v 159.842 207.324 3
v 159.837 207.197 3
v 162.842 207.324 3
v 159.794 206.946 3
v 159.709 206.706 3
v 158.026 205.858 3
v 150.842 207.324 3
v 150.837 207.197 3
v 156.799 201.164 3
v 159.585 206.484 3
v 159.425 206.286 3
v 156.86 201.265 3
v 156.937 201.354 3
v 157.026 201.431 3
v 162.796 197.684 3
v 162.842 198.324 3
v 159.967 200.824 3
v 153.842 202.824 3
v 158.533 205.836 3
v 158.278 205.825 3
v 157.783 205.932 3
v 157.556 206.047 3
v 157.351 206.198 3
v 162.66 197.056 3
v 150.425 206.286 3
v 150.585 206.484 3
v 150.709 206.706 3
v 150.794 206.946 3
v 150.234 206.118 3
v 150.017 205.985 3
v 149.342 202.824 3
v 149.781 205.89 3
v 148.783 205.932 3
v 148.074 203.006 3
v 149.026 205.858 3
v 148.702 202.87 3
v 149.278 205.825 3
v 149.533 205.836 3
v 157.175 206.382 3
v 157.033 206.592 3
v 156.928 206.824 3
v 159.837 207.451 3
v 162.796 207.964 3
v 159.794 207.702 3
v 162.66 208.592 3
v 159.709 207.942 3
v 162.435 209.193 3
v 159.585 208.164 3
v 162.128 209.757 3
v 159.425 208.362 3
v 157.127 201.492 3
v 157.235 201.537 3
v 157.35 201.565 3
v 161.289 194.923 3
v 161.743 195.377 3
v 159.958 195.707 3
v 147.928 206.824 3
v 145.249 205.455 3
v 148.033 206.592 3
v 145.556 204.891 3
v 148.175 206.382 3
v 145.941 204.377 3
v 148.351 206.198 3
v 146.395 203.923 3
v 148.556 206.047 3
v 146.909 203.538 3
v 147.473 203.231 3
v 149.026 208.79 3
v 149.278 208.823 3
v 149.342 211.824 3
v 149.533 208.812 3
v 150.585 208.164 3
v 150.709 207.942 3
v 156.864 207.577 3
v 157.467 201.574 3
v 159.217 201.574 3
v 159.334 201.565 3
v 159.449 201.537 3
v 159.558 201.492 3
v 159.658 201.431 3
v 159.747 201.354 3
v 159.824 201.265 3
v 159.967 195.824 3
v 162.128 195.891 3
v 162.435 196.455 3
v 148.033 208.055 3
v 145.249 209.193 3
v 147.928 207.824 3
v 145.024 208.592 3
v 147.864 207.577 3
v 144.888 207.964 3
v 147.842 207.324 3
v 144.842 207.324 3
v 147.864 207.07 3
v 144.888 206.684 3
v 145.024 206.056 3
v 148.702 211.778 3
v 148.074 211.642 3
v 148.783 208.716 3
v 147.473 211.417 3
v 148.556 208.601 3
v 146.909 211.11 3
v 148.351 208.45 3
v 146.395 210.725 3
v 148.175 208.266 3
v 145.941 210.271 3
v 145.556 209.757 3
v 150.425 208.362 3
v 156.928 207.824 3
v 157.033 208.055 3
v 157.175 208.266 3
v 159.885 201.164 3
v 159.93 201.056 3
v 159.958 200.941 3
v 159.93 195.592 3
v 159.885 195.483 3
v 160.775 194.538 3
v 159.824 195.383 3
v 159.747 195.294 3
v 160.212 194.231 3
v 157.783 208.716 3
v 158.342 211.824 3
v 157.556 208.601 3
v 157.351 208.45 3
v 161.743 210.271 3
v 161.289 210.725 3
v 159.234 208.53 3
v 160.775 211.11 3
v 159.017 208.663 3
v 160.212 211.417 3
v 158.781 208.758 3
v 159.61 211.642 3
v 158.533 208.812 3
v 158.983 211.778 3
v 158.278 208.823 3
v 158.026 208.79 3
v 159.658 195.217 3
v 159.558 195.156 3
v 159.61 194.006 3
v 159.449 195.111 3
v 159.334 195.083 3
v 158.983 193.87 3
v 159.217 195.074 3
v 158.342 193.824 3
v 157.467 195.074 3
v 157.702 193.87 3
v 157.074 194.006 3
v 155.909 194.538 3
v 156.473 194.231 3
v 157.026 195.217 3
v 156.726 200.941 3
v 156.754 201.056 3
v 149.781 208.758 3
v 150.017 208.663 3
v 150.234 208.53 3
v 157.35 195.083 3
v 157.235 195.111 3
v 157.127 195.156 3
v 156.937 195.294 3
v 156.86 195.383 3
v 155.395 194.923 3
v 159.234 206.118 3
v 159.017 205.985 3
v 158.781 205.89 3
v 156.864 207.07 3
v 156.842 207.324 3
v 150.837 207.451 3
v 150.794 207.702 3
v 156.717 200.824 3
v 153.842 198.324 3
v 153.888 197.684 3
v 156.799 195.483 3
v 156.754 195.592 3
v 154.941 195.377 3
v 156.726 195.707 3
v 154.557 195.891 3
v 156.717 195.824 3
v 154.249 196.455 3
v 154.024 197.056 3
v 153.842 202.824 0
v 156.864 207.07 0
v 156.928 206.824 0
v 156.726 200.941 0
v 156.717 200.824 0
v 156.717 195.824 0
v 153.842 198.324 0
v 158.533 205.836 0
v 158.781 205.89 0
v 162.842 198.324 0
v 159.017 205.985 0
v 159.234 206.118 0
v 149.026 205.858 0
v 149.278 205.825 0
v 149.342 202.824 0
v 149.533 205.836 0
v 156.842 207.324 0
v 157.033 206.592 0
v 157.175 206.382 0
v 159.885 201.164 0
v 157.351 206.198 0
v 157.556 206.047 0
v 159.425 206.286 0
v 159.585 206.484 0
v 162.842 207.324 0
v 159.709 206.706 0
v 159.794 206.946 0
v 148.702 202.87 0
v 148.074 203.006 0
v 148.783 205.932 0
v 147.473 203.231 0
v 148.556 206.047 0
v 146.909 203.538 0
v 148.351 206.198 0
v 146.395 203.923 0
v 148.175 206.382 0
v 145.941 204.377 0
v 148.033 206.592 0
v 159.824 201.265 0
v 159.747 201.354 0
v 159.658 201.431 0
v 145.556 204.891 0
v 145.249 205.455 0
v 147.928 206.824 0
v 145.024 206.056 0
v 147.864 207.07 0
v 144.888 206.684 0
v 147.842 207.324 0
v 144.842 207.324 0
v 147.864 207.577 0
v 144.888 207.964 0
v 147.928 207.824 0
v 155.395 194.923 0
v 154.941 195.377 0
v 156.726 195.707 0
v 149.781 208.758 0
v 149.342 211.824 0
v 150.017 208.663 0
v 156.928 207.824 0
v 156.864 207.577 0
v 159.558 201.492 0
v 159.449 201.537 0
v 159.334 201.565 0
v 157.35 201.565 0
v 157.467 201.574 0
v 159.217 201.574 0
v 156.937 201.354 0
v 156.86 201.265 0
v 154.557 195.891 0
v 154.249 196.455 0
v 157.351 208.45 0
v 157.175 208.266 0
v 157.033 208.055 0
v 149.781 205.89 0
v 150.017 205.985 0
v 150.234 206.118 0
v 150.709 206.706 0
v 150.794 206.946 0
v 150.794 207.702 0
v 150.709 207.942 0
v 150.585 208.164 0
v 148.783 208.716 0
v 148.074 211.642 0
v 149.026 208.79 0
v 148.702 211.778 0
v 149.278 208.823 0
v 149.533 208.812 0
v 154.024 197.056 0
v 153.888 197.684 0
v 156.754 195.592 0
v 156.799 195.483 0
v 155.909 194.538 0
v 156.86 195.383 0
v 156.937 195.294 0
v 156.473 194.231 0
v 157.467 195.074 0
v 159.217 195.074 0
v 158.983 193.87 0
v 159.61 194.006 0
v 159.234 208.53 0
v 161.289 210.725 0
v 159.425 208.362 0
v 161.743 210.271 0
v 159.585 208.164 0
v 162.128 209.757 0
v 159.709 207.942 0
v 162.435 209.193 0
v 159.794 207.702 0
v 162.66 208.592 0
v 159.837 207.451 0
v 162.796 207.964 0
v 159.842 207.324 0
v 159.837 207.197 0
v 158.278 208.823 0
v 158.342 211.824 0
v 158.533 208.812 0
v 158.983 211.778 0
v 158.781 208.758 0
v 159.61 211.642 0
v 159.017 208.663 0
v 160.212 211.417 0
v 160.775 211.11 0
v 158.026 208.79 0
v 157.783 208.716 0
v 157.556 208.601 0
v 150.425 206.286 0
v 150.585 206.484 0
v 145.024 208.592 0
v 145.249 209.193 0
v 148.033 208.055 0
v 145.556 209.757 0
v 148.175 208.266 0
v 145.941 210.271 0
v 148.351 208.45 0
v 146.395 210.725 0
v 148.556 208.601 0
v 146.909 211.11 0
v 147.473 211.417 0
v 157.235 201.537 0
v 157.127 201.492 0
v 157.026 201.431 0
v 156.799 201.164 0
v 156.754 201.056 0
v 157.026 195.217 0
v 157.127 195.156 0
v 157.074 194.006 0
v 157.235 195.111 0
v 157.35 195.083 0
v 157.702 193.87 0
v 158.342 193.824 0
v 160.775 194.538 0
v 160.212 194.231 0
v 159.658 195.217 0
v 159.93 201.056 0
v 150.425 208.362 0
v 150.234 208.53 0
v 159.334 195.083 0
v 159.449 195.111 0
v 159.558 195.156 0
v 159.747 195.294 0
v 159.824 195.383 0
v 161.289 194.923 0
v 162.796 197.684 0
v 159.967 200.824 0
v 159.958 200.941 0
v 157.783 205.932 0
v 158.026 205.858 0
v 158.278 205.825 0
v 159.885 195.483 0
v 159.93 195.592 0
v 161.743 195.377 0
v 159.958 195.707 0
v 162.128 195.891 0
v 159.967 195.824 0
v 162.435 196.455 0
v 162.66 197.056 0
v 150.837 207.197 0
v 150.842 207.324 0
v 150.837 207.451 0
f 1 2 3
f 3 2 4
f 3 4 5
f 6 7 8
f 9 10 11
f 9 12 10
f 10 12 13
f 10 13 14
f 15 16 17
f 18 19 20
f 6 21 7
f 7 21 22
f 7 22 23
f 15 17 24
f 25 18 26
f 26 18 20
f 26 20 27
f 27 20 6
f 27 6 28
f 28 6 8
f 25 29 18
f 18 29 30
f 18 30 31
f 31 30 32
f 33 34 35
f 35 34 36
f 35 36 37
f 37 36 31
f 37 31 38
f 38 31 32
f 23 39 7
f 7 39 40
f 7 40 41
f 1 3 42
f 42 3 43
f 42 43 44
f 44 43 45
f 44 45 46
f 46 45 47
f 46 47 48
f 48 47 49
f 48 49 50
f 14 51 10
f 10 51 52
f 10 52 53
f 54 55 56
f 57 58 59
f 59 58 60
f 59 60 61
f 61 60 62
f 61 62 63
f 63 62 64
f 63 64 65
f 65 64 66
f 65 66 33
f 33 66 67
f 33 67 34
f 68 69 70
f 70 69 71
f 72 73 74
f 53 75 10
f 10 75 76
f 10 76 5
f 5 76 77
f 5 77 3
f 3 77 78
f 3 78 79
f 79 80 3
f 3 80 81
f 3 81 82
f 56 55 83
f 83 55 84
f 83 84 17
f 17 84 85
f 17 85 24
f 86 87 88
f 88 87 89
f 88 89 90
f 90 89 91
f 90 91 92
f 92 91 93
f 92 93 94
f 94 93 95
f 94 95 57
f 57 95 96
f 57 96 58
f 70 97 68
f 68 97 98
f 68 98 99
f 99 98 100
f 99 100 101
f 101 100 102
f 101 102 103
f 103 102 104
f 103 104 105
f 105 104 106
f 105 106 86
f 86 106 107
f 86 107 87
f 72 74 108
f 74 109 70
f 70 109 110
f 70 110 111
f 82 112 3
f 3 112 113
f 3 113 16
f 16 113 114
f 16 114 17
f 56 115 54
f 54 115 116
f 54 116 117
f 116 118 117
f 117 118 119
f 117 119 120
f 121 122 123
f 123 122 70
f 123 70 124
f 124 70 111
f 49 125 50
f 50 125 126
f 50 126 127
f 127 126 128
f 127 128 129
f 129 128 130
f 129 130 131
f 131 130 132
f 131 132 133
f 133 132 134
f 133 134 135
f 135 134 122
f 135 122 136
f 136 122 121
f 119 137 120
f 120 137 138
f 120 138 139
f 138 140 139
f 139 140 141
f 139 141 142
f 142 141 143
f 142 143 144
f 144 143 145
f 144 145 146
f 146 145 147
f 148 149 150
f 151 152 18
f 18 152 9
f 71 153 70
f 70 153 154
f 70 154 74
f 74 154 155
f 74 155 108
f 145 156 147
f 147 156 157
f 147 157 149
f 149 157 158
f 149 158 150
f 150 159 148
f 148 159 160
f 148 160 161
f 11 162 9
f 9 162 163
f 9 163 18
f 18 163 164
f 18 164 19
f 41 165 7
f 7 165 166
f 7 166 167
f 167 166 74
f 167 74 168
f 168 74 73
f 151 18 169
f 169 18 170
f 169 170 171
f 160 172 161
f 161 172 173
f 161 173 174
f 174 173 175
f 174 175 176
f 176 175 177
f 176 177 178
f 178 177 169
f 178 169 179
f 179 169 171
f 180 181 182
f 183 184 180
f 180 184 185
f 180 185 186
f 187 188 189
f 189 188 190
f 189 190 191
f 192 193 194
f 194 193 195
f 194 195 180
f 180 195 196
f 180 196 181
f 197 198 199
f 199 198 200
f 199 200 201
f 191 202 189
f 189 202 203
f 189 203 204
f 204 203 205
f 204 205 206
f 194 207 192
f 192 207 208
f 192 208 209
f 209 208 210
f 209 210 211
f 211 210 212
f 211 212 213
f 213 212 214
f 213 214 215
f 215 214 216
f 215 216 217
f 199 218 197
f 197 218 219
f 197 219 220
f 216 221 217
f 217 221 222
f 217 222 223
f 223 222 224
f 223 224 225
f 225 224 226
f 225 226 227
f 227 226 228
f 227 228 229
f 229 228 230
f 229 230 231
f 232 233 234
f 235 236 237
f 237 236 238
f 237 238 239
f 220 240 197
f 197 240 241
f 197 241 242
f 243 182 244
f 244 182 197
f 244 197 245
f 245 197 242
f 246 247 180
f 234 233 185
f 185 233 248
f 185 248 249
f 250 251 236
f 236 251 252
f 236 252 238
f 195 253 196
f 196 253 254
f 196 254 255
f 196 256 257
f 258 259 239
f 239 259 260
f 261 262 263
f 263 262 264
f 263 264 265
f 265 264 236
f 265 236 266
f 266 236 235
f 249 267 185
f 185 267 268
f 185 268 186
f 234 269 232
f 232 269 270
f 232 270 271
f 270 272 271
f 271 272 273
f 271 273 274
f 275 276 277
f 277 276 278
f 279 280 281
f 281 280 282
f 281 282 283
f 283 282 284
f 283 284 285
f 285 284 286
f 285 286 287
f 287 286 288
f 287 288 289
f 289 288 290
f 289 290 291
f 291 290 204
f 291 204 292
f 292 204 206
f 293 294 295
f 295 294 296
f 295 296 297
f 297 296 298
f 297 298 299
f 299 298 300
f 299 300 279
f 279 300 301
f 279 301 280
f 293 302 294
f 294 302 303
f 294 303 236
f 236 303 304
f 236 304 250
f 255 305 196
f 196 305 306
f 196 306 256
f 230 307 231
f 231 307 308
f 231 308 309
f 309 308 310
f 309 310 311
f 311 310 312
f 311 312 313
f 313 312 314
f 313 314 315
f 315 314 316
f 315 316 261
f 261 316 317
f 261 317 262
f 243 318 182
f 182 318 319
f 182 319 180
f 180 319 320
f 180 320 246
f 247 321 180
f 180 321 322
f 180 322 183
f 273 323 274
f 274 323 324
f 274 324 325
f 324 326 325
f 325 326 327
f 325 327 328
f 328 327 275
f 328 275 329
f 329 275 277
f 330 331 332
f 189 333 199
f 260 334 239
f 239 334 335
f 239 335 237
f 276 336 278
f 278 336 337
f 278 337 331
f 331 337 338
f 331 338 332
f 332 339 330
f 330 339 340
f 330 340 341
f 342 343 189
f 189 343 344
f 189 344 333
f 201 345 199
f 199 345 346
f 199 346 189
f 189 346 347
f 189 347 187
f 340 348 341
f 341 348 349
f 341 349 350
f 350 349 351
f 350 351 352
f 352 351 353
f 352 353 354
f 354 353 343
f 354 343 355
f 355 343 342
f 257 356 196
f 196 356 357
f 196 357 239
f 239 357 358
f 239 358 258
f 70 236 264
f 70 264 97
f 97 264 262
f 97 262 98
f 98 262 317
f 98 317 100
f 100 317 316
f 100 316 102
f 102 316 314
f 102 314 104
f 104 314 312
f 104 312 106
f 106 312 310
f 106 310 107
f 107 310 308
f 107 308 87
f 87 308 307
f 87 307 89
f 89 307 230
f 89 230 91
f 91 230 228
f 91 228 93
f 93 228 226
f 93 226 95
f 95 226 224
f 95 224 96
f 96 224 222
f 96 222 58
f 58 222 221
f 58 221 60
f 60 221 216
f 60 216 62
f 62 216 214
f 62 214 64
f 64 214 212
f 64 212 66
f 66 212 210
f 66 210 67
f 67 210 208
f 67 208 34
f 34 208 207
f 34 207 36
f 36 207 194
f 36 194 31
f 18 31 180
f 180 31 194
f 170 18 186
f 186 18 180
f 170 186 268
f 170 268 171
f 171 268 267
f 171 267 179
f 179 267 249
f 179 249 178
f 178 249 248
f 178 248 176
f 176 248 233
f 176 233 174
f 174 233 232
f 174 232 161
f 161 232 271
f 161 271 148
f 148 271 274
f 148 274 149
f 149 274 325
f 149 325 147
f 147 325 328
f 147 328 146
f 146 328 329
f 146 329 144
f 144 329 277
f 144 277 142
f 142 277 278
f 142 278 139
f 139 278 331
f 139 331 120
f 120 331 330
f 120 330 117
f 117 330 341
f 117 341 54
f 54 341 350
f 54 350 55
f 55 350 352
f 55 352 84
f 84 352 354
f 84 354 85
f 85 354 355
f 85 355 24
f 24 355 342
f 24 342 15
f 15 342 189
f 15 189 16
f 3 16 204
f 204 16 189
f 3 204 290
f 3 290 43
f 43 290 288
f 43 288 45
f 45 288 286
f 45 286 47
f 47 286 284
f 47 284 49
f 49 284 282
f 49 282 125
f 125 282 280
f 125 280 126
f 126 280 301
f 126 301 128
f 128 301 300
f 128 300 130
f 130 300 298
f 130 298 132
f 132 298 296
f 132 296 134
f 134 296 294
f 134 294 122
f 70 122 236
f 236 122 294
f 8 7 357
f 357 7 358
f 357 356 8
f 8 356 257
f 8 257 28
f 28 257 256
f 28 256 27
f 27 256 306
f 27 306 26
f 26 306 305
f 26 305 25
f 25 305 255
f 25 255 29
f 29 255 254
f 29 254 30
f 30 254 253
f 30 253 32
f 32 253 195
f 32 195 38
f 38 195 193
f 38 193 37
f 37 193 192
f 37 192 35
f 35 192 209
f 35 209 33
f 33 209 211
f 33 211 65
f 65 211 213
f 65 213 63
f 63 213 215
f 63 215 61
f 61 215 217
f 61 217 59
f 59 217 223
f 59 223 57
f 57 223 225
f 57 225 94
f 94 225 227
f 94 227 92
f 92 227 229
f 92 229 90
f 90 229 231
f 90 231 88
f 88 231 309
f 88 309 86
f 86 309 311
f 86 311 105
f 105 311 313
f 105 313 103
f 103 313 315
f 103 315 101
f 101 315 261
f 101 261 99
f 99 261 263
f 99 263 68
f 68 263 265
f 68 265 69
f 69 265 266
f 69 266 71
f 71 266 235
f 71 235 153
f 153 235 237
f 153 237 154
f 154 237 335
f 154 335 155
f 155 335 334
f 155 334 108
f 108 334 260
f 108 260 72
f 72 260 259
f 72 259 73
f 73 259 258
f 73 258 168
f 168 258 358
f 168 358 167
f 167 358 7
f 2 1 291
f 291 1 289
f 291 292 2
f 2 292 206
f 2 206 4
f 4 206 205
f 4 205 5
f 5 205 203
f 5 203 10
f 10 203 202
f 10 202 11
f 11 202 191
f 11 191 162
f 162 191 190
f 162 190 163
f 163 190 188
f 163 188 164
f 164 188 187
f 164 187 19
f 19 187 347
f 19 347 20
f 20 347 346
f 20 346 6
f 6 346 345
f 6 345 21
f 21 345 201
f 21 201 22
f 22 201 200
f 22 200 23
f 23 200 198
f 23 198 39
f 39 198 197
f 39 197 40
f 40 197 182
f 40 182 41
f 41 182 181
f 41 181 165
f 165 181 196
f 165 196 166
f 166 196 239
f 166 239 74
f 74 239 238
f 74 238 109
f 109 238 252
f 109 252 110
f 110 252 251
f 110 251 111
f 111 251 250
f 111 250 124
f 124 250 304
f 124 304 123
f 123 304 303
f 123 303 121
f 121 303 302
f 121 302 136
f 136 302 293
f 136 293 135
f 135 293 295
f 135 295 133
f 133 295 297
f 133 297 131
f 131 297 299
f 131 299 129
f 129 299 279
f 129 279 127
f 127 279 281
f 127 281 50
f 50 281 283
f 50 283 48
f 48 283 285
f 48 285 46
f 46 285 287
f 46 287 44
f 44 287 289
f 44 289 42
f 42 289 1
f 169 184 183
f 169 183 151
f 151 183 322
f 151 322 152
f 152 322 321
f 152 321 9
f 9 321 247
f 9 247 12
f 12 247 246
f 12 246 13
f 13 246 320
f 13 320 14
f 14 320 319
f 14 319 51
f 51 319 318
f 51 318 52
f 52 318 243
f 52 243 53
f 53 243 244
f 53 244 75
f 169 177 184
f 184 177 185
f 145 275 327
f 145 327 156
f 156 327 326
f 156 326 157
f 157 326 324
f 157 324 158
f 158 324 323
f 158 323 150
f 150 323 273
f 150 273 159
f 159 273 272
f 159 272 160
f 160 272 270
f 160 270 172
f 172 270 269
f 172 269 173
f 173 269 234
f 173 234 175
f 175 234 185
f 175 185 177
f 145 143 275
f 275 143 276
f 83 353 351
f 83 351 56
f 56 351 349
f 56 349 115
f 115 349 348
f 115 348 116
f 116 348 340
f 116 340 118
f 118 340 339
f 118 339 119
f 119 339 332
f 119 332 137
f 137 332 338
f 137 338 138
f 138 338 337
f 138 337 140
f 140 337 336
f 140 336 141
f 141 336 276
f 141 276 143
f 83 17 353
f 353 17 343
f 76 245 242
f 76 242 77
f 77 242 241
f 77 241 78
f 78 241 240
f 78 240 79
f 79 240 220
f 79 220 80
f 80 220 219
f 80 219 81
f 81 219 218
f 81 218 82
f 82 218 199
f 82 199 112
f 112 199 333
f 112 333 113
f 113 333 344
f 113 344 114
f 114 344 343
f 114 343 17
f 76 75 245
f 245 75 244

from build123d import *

# Parameters (mm, degrees)
MODEL_R                 = 1.5
SALIENTE_EXTRUIR1_DEPTH = 3


with BuildPart() as part:
    # Model → Saliente-Extruir1 (new body)
    with BuildSketch(Plane.XY):
        with BuildLine():
            Line((149.34213351, 211.823953209), (158.34213351, 211.823953209))
            ThreePointArc((158.34213351, 211.823953209), (161.524114025, 210.505933724), (162.84213351, 207.323953209))
            Line((162.84213351, 207.323953209), (162.84213351, 198.323953209))
            ThreePointArc((162.84213351, 198.323953209), (158.34213351, 193.823953209), (153.84213351, 198.323953209))
            Line((153.84213351, 198.323953209), (153.84213351, 202.823953209))
            Line((153.84213351, 202.823953209), (149.34213351, 202.823953209))
            ThreePointArc((149.34213351, 202.823953209), (144.84213351, 207.323953209), (149.34213351, 211.823953209))
        make_face()
        with Locations((149.34213351, 207.323953209)):
            Circle(MODEL_R, mode=Mode.SUBTRACT)
        with Locations((158.34213351, 207.323953209)):
            Circle(MODEL_R, mode=Mode.SUBTRACT)
        with BuildLine():
            Line((156.71713351, 195.823953209), (156.71713351, 200.823953209))
            ThreePointArc((156.71713351, 200.823953209), (156.936803424, 201.354283295), (157.46713351, 201.573953209))
            Line((157.46713351, 201.573953209), (159.21713351, 201.573953209))
            ThreePointArc((159.21713351, 201.573953209), (159.747463595, 201.354283295), (159.96713351, 200.823953209))
            Line((159.96713351, 200.823953209), (159.96713351, 195.823953209))
            ThreePointArc((159.96713351, 195.823953209), (159.747463595, 195.293623123), (159.21713351, 195.073953209))
            Line((159.21713351, 195.073953209), (157.46713351, 195.073953209))
            ThreePointArc((157.46713351, 195.073953209), (156.936803424, 195.293623123), (156.71713351, 195.823953209))
        make_face(mode=Mode.SUBTRACT)
    extrude(amount=SALIENTE_EXTRUIR1_DEPTH)


solid = part.part
